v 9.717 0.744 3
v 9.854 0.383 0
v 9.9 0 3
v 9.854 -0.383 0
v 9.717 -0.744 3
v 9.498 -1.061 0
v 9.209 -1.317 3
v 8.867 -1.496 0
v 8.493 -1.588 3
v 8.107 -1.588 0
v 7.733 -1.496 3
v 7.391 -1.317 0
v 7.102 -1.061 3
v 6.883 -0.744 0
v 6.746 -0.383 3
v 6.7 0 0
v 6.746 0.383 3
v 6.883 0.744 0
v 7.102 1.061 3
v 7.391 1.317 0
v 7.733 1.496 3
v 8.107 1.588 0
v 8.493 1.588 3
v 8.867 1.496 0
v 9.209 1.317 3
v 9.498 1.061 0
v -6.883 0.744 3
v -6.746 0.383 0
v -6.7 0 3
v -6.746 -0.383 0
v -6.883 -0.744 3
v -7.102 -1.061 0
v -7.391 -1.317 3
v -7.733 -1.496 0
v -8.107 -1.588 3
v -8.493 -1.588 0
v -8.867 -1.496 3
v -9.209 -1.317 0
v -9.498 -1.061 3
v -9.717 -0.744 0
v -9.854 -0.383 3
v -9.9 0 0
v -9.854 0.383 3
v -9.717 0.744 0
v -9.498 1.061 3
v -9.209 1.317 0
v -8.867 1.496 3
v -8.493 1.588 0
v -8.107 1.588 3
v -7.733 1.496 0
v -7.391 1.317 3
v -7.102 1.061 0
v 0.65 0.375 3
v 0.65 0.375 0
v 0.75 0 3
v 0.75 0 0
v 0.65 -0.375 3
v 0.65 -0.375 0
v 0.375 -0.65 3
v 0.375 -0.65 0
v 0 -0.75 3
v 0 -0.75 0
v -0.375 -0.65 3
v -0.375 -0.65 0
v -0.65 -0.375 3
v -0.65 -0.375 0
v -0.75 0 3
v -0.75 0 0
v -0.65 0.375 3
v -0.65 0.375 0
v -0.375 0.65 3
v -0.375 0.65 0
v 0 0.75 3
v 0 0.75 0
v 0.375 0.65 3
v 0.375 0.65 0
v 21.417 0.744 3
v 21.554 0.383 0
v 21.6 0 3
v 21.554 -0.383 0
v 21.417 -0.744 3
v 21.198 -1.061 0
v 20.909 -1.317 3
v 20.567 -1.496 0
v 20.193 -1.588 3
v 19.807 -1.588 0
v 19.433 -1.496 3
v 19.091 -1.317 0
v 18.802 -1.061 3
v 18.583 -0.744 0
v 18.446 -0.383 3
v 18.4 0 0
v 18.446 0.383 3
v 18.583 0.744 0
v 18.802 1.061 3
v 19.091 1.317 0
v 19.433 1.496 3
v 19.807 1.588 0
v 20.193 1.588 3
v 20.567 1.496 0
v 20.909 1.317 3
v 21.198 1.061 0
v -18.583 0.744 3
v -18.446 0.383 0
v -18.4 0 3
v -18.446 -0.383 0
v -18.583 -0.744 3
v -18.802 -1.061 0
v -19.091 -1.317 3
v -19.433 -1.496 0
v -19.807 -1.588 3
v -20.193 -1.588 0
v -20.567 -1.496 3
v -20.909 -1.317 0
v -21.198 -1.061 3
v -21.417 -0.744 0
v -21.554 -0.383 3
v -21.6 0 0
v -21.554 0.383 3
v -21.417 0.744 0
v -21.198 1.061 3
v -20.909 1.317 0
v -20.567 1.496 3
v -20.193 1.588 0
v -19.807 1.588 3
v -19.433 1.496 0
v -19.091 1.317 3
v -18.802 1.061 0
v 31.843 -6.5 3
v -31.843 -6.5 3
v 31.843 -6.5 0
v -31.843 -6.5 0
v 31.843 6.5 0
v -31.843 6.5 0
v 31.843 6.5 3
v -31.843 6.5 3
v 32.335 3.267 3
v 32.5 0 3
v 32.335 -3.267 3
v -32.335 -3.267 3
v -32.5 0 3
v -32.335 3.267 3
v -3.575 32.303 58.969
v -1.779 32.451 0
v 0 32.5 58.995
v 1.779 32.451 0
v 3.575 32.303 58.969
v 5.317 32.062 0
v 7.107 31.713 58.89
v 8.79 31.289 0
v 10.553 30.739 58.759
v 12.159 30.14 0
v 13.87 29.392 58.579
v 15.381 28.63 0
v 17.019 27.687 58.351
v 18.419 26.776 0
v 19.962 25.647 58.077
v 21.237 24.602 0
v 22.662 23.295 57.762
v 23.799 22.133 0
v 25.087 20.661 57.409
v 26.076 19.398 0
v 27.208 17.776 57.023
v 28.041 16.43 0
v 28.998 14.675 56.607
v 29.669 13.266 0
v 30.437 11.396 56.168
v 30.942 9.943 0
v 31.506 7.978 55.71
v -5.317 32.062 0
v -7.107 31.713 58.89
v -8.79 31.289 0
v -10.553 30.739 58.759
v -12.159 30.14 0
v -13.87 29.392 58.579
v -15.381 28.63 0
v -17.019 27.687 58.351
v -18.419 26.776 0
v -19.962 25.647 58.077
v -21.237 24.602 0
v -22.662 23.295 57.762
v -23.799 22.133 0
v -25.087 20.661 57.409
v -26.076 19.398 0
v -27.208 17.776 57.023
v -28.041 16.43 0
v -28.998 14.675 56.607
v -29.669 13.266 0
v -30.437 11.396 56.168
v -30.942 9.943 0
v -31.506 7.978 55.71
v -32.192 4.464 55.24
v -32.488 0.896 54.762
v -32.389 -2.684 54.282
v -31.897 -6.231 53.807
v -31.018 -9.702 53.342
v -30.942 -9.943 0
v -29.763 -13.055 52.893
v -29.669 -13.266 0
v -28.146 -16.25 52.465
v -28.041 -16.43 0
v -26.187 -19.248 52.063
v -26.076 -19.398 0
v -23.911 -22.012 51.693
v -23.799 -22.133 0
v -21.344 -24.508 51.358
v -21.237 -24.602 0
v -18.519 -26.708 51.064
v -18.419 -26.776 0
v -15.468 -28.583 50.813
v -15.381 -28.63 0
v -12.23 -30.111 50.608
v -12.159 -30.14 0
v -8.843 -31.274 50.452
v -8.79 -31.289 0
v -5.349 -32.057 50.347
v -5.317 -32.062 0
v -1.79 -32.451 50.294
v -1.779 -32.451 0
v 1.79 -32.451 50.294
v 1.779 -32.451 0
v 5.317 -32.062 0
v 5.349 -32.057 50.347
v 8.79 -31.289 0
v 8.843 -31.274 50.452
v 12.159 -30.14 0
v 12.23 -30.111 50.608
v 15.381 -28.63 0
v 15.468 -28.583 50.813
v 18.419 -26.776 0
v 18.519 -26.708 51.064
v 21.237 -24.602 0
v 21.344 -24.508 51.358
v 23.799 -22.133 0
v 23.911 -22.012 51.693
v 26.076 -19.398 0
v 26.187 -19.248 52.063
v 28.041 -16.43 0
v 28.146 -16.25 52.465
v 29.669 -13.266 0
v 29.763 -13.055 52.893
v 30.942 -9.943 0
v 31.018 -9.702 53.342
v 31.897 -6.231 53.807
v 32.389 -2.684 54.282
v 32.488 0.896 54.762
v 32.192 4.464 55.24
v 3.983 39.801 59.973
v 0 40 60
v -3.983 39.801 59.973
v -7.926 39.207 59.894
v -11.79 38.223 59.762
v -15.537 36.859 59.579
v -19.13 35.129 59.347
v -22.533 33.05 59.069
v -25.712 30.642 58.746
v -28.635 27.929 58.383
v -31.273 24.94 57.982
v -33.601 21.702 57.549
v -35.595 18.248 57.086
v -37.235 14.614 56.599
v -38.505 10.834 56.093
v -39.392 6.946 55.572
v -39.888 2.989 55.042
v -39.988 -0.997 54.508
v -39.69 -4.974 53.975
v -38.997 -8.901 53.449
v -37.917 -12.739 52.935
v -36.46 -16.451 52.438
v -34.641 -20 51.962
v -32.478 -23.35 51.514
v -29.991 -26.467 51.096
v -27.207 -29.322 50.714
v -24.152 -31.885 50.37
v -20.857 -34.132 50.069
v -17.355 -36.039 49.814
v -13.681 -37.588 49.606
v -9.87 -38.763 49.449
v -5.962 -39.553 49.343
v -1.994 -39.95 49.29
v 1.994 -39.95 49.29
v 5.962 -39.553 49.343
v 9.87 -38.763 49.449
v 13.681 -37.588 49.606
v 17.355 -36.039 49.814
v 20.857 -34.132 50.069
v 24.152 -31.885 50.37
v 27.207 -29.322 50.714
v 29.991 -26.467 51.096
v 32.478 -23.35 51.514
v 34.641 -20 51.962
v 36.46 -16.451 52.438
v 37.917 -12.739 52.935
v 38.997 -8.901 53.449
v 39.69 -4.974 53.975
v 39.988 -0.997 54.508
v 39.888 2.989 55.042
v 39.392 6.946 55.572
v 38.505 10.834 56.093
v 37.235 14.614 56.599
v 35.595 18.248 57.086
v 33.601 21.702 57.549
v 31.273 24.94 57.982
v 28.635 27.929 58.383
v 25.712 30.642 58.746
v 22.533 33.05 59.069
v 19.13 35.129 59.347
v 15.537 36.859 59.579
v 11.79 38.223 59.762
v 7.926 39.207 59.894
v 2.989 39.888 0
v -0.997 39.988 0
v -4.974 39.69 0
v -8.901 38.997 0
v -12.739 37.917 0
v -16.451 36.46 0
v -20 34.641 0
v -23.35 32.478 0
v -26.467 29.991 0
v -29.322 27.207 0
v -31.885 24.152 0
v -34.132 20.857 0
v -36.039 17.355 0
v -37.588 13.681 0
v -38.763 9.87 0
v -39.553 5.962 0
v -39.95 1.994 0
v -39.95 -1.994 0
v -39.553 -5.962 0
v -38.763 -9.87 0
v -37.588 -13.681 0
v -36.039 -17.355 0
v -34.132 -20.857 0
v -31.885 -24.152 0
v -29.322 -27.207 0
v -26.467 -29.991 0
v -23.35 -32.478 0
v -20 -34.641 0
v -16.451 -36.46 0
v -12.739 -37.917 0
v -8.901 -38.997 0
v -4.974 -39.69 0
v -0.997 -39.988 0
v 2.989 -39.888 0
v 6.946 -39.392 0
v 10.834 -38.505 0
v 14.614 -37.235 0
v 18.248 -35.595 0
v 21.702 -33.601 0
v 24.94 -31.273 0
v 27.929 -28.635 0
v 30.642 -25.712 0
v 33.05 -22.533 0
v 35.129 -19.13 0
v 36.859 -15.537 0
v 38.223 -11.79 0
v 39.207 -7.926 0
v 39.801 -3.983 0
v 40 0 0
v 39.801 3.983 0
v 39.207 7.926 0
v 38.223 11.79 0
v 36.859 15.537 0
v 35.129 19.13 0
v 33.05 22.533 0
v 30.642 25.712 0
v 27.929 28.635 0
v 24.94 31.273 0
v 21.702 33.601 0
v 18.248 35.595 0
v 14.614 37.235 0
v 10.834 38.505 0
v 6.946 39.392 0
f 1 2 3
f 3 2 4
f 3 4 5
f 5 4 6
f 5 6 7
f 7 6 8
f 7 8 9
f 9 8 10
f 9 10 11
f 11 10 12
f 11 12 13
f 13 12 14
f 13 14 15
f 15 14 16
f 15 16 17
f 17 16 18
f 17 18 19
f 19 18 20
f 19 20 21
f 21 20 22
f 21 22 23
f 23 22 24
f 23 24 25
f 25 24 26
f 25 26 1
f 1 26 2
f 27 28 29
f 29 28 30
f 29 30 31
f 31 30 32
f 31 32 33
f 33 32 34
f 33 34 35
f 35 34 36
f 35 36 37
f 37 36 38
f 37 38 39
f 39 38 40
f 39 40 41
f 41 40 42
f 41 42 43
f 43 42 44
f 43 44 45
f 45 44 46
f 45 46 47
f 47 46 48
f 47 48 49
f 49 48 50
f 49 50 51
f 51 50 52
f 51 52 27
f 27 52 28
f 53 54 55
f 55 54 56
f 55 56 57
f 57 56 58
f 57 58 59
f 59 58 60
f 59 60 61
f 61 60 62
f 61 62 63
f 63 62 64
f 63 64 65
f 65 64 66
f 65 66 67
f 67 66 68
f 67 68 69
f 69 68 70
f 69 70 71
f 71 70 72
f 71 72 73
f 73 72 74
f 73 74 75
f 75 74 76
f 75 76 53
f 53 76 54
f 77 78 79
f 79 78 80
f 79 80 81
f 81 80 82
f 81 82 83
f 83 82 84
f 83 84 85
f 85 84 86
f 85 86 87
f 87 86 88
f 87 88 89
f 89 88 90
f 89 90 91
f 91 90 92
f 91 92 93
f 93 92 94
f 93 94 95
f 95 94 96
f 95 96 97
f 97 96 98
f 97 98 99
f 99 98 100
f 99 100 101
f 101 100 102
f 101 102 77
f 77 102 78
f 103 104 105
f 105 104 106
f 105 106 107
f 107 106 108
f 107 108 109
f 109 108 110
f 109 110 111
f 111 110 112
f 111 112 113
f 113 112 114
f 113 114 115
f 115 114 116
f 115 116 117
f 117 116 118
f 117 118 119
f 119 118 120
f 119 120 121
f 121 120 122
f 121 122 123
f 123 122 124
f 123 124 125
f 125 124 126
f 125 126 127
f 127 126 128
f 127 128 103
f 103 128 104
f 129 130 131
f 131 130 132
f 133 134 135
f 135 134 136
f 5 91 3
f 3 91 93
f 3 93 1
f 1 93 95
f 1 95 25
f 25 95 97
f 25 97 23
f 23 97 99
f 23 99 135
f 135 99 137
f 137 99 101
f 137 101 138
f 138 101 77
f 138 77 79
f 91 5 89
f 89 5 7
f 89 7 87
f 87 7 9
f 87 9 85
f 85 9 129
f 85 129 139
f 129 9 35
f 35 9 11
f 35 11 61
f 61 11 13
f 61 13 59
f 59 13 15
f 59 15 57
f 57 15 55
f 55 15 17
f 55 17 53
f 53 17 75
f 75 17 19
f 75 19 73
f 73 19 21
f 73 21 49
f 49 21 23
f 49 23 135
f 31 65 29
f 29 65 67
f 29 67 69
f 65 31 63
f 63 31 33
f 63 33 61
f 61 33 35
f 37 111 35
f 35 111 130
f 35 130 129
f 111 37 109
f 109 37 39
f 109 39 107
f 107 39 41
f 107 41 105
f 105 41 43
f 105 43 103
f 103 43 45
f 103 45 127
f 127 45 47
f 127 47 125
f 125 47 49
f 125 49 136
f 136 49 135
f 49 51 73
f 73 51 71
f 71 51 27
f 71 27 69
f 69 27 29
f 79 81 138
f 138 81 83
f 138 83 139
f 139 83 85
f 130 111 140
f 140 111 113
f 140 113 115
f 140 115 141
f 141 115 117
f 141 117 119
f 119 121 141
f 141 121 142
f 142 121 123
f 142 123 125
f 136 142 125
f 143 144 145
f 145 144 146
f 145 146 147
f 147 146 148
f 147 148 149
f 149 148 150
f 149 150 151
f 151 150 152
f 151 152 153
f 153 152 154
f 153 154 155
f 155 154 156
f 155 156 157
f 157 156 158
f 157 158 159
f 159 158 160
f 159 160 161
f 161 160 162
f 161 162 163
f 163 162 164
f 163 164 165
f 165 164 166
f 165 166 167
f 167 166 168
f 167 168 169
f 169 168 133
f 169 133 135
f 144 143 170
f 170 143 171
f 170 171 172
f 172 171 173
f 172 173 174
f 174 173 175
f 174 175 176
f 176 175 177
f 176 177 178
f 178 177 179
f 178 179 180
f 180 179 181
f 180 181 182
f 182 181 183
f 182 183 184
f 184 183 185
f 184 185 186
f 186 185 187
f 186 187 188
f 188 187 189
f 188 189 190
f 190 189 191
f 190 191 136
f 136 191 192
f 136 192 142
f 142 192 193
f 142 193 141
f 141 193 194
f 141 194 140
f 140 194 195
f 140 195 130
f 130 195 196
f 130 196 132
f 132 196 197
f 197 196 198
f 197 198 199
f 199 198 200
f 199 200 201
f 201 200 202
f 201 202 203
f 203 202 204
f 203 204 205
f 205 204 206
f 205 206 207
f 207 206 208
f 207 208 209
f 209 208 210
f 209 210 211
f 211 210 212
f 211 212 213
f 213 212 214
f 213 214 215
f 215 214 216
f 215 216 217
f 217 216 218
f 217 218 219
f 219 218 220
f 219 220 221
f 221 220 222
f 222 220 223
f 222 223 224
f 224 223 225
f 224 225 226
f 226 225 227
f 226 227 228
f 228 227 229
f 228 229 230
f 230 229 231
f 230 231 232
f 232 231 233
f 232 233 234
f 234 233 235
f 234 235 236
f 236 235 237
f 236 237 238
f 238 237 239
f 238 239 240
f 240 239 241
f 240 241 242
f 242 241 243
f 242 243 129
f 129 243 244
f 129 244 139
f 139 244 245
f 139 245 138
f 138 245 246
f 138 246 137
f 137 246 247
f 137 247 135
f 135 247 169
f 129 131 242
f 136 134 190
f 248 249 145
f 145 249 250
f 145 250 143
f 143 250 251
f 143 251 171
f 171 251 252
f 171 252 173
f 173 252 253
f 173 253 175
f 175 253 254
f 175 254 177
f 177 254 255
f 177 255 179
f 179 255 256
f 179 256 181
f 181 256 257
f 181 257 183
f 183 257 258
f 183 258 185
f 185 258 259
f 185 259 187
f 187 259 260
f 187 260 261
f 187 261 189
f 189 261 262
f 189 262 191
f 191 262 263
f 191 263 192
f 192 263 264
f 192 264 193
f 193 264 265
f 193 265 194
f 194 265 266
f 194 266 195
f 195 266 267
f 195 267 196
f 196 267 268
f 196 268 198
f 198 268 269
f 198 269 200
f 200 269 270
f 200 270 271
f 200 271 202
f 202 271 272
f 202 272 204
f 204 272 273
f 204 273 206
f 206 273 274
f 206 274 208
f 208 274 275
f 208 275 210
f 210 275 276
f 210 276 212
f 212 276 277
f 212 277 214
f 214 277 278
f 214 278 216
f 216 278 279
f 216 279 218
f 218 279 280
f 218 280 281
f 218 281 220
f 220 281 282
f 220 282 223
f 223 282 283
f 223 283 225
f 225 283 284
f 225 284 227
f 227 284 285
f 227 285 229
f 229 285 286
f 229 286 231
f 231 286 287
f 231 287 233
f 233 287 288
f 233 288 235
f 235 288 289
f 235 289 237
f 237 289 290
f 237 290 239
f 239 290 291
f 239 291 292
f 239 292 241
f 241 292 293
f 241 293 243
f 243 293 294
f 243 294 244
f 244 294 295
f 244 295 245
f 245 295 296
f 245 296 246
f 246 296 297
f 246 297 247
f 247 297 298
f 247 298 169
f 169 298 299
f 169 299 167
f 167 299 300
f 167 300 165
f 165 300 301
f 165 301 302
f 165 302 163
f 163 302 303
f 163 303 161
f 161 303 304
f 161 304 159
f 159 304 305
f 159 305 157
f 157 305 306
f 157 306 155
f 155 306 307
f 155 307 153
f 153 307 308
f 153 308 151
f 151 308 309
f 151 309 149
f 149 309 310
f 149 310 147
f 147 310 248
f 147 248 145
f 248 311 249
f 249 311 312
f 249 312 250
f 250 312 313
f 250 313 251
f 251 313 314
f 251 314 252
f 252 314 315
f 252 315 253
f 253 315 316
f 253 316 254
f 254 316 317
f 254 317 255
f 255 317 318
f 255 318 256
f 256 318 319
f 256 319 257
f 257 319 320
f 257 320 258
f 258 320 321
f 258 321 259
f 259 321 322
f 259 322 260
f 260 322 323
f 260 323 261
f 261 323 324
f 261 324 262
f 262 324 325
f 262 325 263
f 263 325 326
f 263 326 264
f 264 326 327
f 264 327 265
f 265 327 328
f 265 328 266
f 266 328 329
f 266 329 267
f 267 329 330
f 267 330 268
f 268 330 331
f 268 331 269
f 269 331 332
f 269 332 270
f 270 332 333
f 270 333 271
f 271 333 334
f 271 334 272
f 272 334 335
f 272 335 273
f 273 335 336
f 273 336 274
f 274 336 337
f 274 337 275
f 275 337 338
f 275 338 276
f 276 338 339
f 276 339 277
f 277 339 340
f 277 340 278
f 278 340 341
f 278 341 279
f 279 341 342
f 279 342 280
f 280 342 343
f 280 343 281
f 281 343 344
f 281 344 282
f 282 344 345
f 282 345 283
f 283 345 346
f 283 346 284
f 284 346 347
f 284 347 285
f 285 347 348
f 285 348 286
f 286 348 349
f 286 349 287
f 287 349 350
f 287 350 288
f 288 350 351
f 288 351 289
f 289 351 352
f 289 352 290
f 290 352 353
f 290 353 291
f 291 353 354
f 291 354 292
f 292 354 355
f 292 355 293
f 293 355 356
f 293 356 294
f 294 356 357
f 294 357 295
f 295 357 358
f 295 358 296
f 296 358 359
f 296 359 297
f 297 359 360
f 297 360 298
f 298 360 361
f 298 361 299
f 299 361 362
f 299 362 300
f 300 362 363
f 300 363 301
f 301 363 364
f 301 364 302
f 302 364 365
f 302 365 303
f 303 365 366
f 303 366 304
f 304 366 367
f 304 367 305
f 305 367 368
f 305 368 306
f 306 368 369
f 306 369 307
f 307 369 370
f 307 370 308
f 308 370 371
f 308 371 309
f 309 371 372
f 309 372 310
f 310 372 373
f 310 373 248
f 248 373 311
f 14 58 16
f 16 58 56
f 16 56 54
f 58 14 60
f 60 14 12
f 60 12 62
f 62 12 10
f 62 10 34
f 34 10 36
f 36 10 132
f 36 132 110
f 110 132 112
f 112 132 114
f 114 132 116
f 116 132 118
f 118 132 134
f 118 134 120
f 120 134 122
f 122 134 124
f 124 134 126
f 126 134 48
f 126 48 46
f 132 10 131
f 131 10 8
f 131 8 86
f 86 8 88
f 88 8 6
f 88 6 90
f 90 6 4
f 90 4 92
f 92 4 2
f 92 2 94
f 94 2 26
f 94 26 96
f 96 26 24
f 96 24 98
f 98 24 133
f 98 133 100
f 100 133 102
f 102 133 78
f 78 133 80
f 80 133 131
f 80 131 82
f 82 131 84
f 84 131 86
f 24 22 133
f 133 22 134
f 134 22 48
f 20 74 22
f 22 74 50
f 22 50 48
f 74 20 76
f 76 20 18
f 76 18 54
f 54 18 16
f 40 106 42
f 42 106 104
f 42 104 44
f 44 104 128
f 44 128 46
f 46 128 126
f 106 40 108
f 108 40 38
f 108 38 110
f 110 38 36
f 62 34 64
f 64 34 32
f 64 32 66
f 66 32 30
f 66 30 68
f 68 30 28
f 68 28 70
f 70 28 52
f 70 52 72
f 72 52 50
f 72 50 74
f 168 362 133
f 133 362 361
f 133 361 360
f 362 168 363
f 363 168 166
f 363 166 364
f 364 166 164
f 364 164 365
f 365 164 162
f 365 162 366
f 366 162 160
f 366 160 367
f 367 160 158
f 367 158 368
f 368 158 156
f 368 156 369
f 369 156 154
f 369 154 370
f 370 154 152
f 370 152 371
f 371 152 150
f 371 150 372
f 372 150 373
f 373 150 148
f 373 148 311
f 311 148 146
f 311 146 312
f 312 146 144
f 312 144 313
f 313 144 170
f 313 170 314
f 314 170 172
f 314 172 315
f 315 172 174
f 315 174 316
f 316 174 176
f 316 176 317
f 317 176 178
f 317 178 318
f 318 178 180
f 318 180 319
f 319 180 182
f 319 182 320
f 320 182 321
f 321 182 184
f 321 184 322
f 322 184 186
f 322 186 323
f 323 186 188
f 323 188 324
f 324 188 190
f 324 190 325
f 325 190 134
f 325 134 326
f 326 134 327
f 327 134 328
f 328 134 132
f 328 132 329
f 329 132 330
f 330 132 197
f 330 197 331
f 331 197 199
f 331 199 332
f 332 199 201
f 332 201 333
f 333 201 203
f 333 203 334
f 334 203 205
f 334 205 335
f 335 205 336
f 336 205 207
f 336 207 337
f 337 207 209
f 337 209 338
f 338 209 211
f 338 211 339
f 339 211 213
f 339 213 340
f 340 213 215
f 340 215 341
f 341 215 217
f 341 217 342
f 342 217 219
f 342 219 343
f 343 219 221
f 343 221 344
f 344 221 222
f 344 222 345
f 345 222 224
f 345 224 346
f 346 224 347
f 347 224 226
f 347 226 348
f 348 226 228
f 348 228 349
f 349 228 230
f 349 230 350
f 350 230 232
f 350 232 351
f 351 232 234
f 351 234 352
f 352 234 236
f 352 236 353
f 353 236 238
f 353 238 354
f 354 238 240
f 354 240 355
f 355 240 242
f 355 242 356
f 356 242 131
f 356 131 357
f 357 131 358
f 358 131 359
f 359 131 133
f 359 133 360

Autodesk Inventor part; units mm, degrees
ref_plane "YZ Plane" through (0, 0, 0) normal (1, 0, 0) x (0, 1, 0)
ref_plane "XZ Plane" through (0, 0, 0) normal (0, 1, 0) x (-1, 0, 0)
ref_plane "XY Plane" through (0, 0, 0) normal (0, 0, 1) x (1, 0, 0)
sketch "スケッチ1" plane through (0, 0, 0) normal (0, 0, 1) x (1, 0, 0)
  circle A0 centre (0, 0) radius 40
  dimension "d0" = 80
extrude "押し出し1" add sketch "スケッチ1" along normal blind 60
sketch "スケッチ2" plane through (0, 0, 60) normal (0, 0, 1) x (1, 0, 0)
  circle A0 centre (0, 0) radius 32.5
  dimension "d3" = 65
extrude "押し出し2" cut sketch "スケッチ2" against normal blind 60
sketch "スケッチ3" plane through (0, 0, 0) normal (1, 0, 0) x (0, 1, 0)
  line L0 (40, 0) -> (40, 60) projected
  line L1 (40, 60) -> (-40, 49.2831)
  line L2 (-40, 0) -> (-40, 60) projected
  line L3 (40, 60) -> (-40, 60) projected
  line L4 (40, 60) -> (-40, 60)
  line L5 (-40, 60) -> (-40, 49.2831)
  point P0 (0, 0)
extrude "押し出し3" cut sketch "スケッチ3" against normal mid plane 80
sketch "スケッチ4" plane through (0, 0, 0) normal (0, 0, 1) x (1, 0, 0)
  line L0 (-32.5, -6.5) -> (32.5, -6.5)
  line L1 (32.5, -6.5) -> (32.5, 6.5)
  line L2 (32.5, 6.5) -> (-32.5, 6.5)
  line L3 (-32.5, 6.5) -> (-32.5, -6.5)
  line L4 (-32.5, -6.5) -> (32.5, 6.5) construction
  line L5 (32.5, -6.5) -> (-32.5, 6.5) construction
  point P0 (0, 0)
  dimension "d8" = 13
  dimension "d9" = 65
extrude "押し出し4" add sketch "スケッチ4" along normal blind 3
sketch "スケッチ5" plane through (0, 0, 0) normal (0, 0, -1) x (-1, 0, 0)
  point P0 (0, 0)
  point P1 (-20, 0)
  point P2 (20, 0)
  dimension "d12" = 20
  dimension "d13" = 20
hole "穴1" at (20, 0, 0) at (-20, 0, 0) direction (0, 0, 1) diameter 3.2 depth 15 tip angle 118
sketch "スケッチ6" plane through (0, 0, 0) normal (0, 0, -1) x (-1, 0, 0)
  point P0 (0, 0)
  point P1 (0, 0)
hole "穴2" at (0, 0, 0) direction (0, 0, 1) diameter 1.5 depth 15 tip angle 118
sketch "スケッチ7" plane through (0, 0, 0) normal (0, 0, -1) x (-1, 0, 0)
  point P0 (0, 0)
  point P1 (-8.3, 0)
  point P2 (8.3, 0)
  dimension "d28" = 8.3
  dimension "d29" = 8.3
hole "穴3" at (8.3, 0, 0) at (-8.3, 0, 0) direction (0, 0, 1) diameter 3.2 depth 8.8 tip angle 118
properties part number "20220612_仮筒"
